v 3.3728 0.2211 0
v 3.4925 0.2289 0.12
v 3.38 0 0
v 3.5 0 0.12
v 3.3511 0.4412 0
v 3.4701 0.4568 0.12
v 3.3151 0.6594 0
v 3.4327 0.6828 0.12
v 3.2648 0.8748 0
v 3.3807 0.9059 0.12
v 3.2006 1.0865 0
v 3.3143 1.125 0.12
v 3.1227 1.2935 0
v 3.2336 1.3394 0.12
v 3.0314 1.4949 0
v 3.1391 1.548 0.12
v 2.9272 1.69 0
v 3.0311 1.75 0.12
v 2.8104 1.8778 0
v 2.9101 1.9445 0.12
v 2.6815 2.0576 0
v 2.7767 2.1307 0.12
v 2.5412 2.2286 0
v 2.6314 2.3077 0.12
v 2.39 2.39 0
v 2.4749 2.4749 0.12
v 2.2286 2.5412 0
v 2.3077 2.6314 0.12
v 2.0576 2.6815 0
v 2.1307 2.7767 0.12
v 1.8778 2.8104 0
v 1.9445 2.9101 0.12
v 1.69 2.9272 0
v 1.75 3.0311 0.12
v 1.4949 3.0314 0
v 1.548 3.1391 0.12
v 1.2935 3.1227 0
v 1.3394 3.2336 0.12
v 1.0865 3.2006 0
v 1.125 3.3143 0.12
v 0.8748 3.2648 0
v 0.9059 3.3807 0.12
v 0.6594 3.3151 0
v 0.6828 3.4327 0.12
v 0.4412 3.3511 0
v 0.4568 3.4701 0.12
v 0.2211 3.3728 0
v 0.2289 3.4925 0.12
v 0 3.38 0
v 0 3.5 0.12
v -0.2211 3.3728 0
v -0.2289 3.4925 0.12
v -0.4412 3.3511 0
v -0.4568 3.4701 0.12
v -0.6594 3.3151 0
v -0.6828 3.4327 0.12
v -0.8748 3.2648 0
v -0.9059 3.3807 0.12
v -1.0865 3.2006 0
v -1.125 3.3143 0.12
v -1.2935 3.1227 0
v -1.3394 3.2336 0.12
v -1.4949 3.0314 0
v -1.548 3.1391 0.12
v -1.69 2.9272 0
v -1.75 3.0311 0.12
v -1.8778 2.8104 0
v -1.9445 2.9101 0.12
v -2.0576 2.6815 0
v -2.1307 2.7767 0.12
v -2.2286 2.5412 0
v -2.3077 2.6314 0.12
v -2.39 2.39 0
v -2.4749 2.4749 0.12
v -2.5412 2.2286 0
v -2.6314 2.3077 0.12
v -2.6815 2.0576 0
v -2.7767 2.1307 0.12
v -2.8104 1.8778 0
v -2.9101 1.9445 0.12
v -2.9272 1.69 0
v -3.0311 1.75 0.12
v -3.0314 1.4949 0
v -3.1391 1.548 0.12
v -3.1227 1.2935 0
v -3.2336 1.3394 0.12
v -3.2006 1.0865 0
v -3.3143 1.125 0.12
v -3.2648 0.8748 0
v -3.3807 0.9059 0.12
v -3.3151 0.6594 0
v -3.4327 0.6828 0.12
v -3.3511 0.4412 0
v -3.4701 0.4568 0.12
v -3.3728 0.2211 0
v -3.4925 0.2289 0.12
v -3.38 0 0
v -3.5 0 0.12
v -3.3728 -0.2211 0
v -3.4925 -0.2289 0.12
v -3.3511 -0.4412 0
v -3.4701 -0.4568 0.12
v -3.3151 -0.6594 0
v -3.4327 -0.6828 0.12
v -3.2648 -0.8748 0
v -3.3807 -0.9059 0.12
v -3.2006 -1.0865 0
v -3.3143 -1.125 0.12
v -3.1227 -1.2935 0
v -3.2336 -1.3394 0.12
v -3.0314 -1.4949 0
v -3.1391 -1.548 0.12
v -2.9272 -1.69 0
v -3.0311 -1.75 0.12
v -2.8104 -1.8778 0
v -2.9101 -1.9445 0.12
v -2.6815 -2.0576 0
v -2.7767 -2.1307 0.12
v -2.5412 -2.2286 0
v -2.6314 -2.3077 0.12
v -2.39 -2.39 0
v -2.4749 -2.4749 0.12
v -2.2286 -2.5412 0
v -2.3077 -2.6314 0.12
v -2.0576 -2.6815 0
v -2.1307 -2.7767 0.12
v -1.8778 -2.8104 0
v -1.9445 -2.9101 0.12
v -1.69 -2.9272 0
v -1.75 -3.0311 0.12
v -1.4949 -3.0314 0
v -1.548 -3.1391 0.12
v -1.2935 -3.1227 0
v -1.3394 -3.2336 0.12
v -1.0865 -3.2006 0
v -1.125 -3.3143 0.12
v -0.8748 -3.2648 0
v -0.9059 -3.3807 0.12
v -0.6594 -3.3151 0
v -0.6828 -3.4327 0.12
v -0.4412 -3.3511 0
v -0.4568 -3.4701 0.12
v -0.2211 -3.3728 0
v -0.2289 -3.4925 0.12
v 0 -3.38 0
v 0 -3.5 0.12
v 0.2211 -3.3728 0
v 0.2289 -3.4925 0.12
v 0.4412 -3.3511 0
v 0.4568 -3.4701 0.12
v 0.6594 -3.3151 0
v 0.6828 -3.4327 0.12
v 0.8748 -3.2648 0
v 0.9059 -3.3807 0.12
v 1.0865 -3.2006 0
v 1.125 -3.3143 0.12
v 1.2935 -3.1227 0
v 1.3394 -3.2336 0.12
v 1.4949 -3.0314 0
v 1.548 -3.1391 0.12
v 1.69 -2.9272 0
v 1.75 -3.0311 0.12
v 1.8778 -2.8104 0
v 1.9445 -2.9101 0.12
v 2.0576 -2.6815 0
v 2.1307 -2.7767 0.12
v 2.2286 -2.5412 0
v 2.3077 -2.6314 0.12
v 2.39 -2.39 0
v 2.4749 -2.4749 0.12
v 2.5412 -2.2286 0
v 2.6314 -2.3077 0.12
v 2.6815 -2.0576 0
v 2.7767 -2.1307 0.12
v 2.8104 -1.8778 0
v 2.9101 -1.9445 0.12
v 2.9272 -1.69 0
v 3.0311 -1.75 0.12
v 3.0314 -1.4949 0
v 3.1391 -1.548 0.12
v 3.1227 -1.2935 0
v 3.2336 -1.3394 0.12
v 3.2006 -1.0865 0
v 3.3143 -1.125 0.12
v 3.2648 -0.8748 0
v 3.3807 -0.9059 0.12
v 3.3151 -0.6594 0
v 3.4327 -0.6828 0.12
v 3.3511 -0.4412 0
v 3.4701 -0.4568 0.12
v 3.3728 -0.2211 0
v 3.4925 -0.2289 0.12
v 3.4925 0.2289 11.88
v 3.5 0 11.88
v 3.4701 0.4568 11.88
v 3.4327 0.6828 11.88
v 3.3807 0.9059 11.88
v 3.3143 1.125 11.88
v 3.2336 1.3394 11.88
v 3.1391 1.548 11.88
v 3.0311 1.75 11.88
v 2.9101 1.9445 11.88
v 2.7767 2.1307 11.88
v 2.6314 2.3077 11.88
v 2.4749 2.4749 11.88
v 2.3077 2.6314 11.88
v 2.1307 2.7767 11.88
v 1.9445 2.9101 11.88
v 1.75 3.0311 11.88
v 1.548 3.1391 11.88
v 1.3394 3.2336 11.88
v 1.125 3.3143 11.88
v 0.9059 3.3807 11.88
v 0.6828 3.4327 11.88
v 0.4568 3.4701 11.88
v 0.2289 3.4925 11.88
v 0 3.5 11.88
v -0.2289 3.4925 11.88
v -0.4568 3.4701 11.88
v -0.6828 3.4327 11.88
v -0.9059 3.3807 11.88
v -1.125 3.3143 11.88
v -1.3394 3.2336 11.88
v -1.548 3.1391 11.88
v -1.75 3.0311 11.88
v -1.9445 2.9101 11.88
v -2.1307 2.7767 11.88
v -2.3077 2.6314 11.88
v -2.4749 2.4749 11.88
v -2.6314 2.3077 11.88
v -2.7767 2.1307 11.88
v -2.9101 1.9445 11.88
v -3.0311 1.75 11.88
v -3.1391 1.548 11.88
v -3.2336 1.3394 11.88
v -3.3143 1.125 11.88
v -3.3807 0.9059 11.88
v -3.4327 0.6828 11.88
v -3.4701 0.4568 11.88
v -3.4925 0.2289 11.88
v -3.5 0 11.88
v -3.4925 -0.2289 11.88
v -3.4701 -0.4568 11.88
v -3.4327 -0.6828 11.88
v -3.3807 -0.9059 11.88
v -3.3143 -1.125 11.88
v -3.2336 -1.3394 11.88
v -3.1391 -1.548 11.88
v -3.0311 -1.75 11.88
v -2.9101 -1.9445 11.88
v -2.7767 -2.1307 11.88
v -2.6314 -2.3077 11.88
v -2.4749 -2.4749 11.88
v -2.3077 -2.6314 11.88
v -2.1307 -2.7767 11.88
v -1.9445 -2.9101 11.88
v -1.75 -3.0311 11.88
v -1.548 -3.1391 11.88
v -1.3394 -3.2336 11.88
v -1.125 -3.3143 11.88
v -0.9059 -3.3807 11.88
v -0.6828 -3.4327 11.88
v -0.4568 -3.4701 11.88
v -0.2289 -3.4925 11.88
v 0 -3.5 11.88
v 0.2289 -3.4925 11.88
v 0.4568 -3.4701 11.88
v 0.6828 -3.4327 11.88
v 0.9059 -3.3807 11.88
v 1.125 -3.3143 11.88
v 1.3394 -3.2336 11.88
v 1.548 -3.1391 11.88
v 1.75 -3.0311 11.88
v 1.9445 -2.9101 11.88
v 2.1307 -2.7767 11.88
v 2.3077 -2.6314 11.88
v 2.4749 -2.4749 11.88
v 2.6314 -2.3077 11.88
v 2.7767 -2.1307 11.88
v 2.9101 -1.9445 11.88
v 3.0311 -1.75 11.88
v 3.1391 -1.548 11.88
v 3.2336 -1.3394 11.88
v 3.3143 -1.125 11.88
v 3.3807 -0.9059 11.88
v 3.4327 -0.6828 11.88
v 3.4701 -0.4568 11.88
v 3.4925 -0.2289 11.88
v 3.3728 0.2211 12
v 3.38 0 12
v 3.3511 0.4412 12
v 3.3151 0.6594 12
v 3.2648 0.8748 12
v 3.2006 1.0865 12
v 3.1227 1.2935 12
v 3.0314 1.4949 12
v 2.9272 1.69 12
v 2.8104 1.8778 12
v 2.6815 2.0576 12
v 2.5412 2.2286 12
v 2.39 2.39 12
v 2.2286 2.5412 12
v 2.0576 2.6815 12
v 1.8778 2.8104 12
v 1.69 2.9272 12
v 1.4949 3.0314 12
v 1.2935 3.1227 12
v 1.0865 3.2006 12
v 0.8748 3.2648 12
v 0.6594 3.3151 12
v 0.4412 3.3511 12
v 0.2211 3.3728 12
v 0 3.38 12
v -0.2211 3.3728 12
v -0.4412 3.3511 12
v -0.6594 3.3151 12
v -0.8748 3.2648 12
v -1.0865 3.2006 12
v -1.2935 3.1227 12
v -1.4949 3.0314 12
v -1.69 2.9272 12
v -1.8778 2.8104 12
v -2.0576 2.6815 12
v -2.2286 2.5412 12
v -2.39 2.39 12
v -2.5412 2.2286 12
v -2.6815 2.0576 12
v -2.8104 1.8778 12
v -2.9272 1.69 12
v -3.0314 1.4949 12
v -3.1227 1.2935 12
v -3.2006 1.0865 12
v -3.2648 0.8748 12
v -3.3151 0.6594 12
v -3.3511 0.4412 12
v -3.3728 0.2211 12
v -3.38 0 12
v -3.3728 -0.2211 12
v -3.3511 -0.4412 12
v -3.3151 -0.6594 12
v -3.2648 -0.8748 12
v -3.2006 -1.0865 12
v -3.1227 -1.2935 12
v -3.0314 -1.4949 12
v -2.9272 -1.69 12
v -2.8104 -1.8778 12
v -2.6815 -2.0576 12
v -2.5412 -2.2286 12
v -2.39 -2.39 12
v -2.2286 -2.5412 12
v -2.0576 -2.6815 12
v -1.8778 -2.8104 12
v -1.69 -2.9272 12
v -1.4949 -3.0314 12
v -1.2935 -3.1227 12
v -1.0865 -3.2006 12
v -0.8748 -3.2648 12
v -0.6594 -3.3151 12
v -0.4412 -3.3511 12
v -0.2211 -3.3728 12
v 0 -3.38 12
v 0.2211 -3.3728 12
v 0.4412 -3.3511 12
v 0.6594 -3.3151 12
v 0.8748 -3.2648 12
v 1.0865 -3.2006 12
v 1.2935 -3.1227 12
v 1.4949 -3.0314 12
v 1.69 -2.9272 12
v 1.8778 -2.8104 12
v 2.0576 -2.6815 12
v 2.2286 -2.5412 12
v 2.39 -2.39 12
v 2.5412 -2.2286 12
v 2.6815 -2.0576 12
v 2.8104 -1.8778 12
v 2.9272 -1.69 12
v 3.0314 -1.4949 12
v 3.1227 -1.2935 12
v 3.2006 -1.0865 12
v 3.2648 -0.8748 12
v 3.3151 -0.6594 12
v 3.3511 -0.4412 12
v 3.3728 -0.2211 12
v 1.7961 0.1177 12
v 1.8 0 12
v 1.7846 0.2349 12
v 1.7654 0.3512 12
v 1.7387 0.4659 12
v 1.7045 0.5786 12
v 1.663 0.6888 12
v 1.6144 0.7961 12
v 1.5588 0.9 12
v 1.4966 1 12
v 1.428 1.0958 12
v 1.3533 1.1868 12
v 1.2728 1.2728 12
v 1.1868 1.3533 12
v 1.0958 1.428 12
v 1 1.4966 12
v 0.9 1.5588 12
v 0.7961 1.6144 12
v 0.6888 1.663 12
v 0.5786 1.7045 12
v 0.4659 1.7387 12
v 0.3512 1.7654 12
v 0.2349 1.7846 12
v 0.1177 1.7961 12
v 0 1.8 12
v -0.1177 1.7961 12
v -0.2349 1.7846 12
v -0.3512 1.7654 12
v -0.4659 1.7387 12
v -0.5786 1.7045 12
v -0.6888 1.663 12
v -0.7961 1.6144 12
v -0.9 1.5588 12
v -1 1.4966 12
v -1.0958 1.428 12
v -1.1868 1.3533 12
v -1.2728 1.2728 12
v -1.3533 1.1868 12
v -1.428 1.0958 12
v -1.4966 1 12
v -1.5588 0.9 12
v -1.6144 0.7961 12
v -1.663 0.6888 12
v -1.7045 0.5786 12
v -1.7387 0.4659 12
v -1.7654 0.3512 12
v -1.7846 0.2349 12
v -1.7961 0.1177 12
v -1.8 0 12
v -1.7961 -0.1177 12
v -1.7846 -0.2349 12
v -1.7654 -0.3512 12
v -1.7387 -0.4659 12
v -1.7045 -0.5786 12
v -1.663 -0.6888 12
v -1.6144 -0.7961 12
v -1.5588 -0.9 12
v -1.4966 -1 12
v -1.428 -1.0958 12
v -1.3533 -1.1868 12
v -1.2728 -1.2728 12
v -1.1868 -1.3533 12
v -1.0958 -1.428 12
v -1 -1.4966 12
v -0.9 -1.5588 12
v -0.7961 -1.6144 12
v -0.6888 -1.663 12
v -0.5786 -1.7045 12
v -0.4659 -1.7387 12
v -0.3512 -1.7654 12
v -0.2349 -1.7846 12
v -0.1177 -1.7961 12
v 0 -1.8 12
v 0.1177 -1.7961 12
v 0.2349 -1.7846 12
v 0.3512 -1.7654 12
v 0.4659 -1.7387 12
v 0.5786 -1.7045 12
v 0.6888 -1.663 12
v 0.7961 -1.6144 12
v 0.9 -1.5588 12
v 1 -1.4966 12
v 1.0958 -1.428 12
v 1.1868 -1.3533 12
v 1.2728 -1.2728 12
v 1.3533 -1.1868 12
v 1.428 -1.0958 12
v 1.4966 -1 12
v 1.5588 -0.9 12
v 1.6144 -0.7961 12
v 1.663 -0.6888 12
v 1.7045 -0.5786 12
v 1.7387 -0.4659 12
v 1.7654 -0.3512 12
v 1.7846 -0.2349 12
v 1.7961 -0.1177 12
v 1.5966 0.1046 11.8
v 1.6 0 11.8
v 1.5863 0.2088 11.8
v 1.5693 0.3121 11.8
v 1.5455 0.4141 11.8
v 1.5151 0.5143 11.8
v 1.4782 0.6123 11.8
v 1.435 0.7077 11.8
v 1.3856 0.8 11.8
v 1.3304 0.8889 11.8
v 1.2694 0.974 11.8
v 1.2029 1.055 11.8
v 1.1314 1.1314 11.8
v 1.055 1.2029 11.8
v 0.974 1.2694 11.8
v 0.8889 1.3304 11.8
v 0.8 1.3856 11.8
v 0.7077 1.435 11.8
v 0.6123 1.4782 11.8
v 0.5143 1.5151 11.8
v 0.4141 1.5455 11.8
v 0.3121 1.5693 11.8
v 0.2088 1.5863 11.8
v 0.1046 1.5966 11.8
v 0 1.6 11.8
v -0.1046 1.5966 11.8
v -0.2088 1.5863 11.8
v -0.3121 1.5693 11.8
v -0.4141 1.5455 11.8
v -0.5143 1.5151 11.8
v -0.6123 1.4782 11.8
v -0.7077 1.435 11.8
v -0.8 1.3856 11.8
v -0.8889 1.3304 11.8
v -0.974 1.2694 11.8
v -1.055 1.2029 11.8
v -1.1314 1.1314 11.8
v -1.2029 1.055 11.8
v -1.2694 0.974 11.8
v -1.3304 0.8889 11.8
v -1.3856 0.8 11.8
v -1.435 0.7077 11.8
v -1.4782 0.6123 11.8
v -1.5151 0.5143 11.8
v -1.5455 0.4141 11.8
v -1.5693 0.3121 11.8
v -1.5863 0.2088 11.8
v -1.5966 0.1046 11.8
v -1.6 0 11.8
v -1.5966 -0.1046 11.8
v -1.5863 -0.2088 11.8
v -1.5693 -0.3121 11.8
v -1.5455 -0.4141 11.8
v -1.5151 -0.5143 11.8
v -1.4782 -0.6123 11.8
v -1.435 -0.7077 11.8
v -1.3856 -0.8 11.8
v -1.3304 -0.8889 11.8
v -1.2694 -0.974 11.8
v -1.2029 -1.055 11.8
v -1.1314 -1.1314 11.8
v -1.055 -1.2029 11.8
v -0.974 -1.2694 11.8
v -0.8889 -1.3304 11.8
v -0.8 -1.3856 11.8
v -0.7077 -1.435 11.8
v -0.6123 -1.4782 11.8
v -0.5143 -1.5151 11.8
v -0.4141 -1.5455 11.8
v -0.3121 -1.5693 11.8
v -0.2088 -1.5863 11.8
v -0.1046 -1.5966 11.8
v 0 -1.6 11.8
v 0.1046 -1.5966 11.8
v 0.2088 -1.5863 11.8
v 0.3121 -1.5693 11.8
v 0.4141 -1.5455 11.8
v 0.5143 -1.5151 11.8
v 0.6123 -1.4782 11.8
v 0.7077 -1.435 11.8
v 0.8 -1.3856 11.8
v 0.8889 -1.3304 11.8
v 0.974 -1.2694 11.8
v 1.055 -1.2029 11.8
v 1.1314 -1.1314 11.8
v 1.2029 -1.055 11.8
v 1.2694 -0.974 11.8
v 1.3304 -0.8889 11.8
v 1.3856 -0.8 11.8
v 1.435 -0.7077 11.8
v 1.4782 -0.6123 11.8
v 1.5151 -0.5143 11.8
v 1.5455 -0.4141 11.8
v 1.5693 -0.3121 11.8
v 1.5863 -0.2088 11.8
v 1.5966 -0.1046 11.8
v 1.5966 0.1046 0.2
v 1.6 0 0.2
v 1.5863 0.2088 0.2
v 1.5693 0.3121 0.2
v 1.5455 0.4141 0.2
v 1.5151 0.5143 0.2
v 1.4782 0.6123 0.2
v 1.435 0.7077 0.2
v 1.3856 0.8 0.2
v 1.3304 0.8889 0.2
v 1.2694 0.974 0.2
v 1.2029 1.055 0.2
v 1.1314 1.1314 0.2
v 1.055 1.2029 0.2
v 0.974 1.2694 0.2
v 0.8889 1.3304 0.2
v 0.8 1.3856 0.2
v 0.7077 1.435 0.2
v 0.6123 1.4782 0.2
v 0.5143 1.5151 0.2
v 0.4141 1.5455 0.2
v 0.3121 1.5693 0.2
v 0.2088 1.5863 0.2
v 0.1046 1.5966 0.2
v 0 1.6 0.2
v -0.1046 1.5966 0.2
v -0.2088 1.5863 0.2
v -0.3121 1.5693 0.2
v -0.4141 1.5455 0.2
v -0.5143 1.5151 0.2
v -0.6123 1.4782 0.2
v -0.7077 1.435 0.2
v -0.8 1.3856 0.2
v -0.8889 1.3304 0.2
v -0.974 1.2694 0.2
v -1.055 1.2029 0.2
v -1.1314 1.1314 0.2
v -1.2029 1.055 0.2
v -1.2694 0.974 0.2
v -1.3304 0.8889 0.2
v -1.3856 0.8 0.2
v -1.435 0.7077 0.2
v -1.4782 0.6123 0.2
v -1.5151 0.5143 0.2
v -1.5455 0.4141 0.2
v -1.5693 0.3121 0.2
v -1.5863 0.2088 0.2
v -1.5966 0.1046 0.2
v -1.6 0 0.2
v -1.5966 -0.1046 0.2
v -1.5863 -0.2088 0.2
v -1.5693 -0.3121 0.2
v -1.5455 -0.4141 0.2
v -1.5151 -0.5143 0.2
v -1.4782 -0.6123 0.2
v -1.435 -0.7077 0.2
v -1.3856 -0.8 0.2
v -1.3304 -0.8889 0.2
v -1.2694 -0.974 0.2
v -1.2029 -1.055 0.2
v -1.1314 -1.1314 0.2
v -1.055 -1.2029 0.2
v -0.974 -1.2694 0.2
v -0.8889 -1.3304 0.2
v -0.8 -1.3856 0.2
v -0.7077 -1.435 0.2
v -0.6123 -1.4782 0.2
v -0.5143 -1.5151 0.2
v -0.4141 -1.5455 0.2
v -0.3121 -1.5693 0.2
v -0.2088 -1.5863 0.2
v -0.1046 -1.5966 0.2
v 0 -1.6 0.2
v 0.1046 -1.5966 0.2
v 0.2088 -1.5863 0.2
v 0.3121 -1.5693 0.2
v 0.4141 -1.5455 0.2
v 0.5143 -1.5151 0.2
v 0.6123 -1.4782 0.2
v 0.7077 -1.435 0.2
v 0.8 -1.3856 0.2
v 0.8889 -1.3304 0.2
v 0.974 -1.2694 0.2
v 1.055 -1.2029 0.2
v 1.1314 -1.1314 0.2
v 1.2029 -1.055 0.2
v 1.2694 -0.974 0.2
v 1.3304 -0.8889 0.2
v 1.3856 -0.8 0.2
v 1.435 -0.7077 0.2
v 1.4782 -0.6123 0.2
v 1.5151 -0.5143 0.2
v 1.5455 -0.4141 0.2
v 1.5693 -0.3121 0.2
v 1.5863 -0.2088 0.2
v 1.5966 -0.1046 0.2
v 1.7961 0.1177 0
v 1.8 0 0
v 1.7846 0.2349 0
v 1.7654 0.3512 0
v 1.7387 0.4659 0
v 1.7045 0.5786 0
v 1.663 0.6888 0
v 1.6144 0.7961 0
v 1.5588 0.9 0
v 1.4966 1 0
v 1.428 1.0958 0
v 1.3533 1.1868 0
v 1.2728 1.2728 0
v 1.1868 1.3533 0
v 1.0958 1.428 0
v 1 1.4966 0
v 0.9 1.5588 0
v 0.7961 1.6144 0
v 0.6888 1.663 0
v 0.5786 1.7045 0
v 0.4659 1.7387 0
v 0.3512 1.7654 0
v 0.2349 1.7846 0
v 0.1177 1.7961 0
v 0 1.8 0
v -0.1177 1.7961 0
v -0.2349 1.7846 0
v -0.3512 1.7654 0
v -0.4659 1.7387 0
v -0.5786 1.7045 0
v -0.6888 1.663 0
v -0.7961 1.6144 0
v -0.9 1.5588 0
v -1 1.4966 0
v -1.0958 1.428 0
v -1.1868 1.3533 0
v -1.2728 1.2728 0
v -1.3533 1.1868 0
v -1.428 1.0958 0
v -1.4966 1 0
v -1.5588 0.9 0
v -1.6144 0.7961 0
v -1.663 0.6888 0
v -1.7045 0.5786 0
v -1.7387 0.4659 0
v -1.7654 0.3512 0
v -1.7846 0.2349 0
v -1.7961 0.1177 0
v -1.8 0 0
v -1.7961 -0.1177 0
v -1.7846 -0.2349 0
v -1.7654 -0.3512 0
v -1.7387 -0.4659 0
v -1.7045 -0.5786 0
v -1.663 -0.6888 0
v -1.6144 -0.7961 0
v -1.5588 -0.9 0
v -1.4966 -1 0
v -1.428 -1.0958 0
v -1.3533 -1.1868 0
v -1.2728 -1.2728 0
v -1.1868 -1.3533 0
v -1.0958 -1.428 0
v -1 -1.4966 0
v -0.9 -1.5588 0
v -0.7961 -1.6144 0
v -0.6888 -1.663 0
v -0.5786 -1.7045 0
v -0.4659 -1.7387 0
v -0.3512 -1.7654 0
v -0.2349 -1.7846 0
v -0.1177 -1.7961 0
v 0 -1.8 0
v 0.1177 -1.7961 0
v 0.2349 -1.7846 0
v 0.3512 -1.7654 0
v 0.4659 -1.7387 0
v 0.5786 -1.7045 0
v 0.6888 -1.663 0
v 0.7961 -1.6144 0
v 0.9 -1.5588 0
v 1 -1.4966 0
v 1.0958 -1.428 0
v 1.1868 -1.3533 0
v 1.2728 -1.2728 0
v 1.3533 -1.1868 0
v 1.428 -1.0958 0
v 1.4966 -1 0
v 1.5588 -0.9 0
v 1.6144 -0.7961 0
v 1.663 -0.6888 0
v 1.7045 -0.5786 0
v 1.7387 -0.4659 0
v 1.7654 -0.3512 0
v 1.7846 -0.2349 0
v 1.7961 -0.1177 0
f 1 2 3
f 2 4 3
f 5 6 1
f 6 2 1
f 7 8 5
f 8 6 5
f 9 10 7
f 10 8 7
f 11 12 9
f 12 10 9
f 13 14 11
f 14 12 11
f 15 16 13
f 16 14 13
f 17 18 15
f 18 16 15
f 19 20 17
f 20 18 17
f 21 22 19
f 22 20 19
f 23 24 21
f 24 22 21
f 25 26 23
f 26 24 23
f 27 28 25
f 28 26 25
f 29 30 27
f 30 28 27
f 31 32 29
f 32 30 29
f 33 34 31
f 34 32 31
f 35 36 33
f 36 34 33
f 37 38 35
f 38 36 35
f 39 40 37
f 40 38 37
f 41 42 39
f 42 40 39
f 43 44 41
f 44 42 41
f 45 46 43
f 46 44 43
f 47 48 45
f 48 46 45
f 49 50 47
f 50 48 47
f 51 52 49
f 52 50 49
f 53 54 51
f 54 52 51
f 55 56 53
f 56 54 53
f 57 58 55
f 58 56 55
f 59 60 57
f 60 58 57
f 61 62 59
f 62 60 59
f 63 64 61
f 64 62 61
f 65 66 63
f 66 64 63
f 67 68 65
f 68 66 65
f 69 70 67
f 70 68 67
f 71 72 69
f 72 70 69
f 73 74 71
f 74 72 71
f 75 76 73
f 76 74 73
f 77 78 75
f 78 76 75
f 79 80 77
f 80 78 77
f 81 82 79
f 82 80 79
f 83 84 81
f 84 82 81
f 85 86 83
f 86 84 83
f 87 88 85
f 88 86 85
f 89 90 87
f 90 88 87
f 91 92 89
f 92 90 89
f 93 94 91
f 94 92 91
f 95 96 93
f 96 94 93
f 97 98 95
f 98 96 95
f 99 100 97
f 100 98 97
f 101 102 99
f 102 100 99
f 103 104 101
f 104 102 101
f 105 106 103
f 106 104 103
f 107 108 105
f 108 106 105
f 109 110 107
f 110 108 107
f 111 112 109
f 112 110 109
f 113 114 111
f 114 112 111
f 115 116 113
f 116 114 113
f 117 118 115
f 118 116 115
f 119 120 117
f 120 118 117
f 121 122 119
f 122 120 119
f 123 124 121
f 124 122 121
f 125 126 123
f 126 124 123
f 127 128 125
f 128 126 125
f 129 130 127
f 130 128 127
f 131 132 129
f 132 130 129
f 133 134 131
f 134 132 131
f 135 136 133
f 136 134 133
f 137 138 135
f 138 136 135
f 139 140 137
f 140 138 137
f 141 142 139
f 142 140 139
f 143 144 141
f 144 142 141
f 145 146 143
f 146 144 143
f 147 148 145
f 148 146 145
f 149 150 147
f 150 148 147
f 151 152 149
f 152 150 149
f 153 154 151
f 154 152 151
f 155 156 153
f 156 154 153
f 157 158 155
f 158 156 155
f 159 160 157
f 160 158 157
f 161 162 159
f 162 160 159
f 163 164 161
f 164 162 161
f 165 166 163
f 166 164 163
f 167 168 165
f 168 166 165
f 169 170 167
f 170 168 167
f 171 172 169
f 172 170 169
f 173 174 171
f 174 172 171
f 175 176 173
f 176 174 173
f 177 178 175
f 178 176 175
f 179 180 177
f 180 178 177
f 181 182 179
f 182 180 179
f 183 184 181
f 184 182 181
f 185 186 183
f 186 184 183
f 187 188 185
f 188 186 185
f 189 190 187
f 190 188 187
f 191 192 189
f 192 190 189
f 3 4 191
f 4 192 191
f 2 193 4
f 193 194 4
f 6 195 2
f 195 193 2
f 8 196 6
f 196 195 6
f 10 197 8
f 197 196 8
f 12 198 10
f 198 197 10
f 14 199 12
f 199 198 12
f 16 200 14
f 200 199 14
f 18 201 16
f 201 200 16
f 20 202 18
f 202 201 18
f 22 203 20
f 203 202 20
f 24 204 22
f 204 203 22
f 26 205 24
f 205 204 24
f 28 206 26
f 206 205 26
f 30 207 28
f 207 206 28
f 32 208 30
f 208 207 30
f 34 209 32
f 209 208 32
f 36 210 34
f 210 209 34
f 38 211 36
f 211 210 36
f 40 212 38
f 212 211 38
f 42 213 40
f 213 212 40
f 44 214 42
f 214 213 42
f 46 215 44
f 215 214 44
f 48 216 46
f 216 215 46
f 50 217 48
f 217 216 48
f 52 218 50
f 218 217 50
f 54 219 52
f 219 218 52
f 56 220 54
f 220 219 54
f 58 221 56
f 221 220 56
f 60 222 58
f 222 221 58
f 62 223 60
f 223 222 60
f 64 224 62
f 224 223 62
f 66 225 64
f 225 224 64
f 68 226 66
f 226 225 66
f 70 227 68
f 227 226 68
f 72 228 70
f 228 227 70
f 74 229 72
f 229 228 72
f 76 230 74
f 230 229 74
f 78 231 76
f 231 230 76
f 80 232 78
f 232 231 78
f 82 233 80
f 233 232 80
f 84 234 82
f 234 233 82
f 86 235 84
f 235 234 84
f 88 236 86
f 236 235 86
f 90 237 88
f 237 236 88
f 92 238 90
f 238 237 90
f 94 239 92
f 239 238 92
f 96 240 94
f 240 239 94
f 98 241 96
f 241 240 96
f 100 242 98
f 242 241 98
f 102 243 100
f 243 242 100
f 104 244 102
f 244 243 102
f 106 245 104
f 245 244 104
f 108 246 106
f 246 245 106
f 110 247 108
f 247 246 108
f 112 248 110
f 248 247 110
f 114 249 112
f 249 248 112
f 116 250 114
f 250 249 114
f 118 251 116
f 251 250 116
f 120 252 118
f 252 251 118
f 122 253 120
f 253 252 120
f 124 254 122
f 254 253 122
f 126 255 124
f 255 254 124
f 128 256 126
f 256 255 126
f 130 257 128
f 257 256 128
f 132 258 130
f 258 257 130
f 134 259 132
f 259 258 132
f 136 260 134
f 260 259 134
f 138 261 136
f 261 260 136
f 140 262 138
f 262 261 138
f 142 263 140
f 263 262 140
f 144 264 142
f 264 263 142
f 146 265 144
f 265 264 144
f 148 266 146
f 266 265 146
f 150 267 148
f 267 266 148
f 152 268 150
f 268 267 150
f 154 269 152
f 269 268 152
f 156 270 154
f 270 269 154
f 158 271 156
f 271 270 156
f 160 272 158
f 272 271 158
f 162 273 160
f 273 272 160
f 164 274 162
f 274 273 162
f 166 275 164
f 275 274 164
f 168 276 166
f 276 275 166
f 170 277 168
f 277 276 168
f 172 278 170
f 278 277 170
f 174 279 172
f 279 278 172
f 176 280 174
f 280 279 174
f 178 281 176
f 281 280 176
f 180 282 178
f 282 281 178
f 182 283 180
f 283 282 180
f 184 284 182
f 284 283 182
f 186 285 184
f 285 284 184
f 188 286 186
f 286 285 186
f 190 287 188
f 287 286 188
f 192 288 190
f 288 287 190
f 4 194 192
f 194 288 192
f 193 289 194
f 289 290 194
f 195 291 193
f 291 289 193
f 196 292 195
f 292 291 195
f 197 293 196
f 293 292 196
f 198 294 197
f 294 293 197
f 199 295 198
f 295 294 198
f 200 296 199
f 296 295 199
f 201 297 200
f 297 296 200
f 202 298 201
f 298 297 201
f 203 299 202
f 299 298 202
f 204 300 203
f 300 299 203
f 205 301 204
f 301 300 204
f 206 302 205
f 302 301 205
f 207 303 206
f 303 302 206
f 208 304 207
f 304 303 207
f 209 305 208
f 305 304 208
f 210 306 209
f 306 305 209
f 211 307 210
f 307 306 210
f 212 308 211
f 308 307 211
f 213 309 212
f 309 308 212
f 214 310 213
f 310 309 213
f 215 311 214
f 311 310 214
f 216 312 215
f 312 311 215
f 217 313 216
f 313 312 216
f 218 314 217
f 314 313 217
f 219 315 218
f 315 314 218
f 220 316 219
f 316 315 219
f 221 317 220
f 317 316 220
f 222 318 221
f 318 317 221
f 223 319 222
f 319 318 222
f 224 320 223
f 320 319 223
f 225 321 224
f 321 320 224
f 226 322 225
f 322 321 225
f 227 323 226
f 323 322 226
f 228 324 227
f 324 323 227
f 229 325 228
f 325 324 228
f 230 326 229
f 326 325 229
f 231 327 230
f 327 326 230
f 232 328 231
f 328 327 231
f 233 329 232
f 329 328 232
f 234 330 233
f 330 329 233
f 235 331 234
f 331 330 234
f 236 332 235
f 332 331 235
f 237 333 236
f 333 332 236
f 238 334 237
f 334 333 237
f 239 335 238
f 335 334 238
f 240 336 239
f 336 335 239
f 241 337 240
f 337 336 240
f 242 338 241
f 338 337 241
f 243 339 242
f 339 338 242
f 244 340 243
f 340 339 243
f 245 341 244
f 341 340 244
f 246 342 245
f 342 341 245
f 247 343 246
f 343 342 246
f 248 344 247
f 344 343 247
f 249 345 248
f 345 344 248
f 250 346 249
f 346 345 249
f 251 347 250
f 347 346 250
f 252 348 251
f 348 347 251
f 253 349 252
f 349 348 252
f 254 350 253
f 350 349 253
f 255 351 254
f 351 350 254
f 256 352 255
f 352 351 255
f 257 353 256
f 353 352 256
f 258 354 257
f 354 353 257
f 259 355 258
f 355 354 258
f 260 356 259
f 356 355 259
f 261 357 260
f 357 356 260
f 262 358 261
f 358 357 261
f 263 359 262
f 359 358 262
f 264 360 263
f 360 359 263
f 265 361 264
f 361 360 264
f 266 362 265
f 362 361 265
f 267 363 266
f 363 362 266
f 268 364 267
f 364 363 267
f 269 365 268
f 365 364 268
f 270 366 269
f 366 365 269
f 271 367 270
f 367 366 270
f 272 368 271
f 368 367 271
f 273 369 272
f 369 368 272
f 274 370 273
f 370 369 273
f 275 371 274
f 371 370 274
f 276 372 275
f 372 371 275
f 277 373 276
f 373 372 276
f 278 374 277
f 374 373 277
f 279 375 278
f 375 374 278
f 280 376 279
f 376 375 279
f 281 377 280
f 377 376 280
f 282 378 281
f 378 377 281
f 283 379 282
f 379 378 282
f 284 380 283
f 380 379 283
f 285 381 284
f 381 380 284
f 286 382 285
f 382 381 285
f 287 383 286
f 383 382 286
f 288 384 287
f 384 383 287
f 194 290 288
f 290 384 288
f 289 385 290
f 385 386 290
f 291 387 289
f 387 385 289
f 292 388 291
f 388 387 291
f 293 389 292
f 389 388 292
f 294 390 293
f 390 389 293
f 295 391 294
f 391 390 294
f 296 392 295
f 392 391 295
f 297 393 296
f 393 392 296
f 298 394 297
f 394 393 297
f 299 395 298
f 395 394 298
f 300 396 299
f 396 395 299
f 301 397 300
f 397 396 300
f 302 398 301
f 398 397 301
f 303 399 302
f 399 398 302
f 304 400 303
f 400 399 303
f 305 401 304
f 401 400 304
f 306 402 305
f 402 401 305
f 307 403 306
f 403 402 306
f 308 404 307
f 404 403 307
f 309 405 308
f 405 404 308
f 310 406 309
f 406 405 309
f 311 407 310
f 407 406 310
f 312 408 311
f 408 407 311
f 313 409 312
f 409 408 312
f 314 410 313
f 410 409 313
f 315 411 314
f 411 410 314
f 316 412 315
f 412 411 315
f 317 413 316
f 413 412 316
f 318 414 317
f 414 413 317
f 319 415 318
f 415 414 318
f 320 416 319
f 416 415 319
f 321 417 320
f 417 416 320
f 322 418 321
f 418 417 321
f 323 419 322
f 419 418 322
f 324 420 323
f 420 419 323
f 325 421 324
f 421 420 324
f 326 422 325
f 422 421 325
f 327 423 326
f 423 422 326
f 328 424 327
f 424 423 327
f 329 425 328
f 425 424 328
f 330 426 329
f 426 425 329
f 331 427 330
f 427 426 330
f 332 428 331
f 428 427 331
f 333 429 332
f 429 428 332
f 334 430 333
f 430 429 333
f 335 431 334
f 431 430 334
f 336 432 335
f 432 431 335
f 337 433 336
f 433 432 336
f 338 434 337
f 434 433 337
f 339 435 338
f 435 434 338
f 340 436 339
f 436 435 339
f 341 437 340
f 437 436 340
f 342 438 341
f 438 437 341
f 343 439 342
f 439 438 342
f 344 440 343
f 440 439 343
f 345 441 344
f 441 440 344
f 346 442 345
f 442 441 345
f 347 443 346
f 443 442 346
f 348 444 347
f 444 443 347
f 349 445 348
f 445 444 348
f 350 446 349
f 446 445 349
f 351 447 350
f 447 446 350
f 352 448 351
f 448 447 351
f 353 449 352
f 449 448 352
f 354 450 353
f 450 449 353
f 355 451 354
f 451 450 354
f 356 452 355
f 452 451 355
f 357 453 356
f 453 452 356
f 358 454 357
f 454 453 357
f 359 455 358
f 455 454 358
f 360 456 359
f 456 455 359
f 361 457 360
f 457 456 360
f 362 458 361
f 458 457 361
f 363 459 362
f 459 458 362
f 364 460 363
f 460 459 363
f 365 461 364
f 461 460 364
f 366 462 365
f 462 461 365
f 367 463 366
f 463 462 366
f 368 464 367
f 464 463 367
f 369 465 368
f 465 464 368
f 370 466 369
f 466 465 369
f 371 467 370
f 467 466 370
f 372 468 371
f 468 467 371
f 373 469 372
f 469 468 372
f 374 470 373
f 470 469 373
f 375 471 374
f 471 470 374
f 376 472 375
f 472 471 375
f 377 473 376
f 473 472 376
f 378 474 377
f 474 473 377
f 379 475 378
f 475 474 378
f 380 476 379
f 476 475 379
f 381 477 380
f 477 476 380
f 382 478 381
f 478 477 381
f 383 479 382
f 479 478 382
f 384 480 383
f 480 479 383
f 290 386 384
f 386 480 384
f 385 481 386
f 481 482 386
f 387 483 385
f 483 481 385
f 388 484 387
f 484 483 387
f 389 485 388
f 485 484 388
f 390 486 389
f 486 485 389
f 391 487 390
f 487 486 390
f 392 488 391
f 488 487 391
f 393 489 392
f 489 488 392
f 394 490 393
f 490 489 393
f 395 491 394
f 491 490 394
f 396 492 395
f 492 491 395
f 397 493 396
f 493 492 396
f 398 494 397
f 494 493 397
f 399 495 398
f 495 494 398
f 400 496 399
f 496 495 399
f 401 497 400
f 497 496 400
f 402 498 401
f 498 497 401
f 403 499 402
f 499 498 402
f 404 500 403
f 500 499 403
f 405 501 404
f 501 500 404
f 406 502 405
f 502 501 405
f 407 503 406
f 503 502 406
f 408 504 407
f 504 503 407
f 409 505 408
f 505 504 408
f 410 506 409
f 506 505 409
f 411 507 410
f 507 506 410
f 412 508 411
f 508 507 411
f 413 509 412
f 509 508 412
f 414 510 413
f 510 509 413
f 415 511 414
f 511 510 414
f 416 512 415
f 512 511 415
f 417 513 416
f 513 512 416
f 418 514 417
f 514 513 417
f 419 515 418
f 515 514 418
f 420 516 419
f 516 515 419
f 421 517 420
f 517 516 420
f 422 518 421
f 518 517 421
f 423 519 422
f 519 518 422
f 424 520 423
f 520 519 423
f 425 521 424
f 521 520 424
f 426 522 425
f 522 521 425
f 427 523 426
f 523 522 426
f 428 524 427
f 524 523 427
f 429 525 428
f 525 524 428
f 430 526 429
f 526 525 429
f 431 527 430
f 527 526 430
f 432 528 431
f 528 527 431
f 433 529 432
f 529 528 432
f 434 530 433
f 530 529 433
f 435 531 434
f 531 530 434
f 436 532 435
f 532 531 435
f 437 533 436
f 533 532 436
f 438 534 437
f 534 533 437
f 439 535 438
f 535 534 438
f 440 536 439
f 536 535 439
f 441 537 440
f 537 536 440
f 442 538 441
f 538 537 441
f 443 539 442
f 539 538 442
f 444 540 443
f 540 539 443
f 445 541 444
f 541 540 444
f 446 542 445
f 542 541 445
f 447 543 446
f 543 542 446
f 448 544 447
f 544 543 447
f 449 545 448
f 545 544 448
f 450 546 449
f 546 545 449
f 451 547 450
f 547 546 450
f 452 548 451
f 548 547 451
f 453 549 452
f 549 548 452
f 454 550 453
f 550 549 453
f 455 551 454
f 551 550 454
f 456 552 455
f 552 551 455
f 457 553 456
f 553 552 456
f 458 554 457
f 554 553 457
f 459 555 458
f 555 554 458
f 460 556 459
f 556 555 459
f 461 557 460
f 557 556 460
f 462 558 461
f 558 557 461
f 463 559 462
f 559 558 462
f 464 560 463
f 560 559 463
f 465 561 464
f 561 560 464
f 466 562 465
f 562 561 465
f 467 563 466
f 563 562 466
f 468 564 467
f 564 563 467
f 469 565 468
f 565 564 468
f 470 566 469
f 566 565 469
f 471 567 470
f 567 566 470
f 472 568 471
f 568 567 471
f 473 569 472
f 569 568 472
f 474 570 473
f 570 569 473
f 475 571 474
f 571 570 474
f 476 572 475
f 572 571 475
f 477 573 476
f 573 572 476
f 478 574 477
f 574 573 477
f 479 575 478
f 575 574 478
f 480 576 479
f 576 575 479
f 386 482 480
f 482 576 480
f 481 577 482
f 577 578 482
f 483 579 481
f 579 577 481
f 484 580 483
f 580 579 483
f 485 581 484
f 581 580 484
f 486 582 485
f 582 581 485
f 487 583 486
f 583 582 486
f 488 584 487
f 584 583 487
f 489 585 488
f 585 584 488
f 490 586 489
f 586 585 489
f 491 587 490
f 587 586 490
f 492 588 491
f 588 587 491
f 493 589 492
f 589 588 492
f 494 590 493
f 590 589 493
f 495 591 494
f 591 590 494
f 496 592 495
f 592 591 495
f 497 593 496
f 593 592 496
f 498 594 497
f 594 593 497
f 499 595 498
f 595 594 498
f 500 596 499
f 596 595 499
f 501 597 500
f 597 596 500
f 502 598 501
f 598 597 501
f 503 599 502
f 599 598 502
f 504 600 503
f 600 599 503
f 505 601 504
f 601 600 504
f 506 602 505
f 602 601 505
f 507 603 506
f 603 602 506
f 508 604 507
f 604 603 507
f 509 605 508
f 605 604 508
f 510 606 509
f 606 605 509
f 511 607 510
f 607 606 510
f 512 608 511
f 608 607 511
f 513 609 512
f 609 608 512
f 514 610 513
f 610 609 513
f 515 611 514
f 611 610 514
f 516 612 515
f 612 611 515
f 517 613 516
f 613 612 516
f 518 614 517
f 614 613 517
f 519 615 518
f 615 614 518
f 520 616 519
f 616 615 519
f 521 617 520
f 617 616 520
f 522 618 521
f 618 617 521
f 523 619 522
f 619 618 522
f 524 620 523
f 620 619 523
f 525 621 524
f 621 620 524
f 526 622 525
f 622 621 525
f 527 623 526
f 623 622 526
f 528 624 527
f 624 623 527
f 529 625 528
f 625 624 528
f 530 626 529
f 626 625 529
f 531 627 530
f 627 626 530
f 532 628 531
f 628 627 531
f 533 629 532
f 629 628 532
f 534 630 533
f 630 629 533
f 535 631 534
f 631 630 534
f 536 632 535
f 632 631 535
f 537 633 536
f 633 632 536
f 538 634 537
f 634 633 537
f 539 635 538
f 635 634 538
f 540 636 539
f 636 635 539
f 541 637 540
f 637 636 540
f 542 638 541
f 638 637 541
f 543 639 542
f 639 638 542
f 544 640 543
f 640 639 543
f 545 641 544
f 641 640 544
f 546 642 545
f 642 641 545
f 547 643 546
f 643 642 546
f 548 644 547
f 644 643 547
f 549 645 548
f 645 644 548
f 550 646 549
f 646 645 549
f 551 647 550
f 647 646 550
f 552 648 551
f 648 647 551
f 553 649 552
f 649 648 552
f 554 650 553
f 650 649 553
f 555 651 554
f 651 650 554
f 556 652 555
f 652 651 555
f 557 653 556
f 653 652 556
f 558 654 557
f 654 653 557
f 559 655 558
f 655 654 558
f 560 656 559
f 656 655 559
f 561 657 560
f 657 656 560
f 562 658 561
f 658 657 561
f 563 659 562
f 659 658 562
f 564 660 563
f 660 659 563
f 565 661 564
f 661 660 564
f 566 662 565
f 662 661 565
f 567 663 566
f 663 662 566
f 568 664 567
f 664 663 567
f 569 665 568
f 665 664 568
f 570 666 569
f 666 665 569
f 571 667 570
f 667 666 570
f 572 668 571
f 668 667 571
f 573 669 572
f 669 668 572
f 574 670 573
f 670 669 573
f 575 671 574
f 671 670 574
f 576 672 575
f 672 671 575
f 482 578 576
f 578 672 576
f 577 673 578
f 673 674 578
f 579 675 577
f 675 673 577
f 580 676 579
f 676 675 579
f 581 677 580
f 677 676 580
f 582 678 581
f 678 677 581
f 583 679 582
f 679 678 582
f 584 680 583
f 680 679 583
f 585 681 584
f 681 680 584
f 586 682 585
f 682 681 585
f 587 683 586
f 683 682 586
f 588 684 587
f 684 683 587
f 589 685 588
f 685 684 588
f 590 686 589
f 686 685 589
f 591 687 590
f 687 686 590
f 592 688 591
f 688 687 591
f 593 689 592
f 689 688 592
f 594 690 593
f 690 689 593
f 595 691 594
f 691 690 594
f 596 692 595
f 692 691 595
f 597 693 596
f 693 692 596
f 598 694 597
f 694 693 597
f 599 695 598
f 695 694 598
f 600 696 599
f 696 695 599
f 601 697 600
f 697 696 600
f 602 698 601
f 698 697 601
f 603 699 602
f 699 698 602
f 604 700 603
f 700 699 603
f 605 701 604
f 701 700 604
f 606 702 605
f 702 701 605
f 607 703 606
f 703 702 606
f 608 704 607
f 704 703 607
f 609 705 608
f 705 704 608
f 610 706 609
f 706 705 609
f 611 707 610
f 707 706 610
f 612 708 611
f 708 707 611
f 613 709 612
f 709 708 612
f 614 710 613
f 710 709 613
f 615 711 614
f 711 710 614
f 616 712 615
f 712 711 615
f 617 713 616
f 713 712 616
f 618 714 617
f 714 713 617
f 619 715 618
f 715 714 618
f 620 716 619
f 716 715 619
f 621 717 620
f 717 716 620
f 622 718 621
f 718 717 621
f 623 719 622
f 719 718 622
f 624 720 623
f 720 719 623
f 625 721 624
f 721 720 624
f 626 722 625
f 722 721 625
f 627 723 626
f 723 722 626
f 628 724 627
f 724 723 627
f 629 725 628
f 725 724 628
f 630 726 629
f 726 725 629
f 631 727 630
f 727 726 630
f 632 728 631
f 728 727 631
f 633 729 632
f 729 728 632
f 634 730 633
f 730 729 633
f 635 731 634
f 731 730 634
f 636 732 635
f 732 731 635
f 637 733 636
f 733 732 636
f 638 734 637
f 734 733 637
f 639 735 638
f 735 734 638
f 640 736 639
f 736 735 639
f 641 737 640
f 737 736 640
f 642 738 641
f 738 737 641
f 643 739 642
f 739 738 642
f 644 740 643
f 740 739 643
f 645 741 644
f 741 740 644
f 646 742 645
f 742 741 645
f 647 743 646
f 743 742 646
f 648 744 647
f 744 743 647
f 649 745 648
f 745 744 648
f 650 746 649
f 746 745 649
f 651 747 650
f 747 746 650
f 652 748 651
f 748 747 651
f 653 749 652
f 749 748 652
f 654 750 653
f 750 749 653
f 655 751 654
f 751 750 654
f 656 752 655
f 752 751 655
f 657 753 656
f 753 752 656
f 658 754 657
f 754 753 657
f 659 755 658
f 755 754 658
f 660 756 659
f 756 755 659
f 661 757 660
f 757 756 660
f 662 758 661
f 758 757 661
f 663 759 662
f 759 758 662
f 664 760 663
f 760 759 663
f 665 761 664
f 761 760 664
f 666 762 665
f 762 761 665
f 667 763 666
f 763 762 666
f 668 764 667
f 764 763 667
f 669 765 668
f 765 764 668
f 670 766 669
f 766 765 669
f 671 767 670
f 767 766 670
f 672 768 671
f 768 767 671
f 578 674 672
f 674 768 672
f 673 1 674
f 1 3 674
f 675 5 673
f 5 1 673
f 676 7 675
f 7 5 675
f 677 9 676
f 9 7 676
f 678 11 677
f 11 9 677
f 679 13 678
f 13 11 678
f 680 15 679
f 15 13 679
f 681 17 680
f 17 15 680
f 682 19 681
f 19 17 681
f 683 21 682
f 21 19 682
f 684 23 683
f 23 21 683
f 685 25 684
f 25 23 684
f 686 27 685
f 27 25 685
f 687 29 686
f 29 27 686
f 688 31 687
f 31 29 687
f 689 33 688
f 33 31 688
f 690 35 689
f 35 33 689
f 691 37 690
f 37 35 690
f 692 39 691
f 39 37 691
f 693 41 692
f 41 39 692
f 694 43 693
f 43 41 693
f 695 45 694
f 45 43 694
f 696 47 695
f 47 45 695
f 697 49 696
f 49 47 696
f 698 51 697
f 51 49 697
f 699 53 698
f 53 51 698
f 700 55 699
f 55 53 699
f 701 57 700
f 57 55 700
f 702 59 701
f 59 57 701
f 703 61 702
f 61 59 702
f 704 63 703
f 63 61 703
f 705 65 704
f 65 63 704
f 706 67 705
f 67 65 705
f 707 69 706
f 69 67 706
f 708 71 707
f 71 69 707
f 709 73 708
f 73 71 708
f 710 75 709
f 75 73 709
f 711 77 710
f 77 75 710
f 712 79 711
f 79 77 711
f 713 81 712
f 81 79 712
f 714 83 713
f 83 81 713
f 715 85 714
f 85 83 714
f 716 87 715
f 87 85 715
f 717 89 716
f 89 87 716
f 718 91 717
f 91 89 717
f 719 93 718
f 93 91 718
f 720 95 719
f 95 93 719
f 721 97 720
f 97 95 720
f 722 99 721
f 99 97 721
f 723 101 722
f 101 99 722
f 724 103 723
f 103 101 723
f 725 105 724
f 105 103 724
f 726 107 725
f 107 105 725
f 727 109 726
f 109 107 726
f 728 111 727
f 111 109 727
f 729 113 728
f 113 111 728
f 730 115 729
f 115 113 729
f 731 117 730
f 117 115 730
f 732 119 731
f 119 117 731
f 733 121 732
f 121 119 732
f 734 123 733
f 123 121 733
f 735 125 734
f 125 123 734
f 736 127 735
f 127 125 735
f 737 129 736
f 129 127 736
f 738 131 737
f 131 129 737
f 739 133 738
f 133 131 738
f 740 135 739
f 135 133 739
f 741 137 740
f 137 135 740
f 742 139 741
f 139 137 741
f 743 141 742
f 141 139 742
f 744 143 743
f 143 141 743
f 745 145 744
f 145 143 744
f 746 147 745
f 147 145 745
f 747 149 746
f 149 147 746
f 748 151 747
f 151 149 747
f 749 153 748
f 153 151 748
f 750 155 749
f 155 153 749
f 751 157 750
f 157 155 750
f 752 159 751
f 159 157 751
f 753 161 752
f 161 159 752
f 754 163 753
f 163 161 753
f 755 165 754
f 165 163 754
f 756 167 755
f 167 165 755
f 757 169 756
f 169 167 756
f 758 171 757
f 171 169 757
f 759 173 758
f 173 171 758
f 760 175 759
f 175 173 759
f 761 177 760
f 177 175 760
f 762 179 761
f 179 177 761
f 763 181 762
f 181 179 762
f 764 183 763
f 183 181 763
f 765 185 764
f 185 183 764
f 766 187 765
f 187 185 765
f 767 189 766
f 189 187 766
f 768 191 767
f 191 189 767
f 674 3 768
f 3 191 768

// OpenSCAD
// OOMP generic catalogue model; units: mm.
// Stud length is additional to body depth. Tapping depths are model assumptions.
variant = "full"; // [full, display]
family = "spacer";
connection_type = "plain";
depth_mm = 12;
stud_length_mm = 0;
tapped_depth_mm = 0;
bore_mm = 3.2;
outer_diameter_mm = 7;
across_flats_mm = 6;
thread_nominal_diameter_mm = 3;
thread_pitch_mm = 0.5;
edge_chamfer_mm = 0.12;
mouth_chamfer_mm = 0.2;
angular_segments = 96;
samples_per_pitch = 16;

// Boundary travels up the outside, then down any tapped/plain bore.
// Equal-height rings at shoulders form the annular shoulder faces.
n = angular_segments;
threaded = family == "standoff";
has_stud = connection_type == "stud_to_tapped" || connection_type == "stud_to_stud";
two_studs = connection_type == "stud_to_stud";
through = !threaded || connection_type == "tapped_to_tapped";
pitch = thread_pitch_mm;
diameter = threaded ? thread_nominal_diameter_mm : bore_mm;
minor = diameter - 5*sqrt(3)*pitch/8;
transition = mouth_chamfer_mm + (threaded ? 5*sqrt(3)*pitch/16 : 0);
tip_chamfer = mouth_chamfer_mm + 17*sqrt(3)*pitch/48;
function sorted(v) = len(v)<=1 ? v : let(p=v[0])
    concat(sorted([for(x=v) if(x<p-1e-8) x]), [p], sorted([for(x=v) if(x>p+1e-8) x]));
function reverse(v) = [for(i=[len(v)-1:-1:0]) v[i]];
function theta(i) = i*360/n;
function fract(x) = x-floor(x);
function phase_distance(i,z) = abs(fract(z/pitch-theta(i)/360+0.5)-0.5);
function thread_r(i,z) = minor/2 + min(5*sqrt(3)*pitch/16,
    max(0,(phase_distance(i,z)-0.125)*pitch*sqrt(3)));
function stud_r(i,z,tip) = min(diameter/2 - (variant=="full" ?
    min(17*sqrt(3)*pitch/48,max(0,(phase_distance(i,z)-0.0625)*pitch*sqrt(3))) : 0),
    diameter/2-tip_chamfer+abs(z-tip));
function body_r(i,z) = (threaded ? across_flats_mm/2/cos(theta(i)%60-30) : outer_diameter_mm/2)
    - max(0,edge_chamfer_mm-min(z,depth_mm-z));
function bore_r(i,z) = max(threaded ? (variant=="full" ? thread_r(i,z) : minor/2) : diameter/2,
    diameter/2+mouth_chamfer_mm-(through ? min(z,depth_mm-z) : depth_mm-z));
function stud_z(a,b,tip) = let(count=variant=="full" ? ceil(stud_length_mm/pitch*samples_per_pitch) : 1)
    sorted(concat([for(i=[0:count]) a+(b-a)*i/count], [tip==a ? tip+tip_chamfer : tip-tip_chamfer]));
body_z = sorted([0,edge_chamfer_mm,depth_mm-edge_chamfer_mm,depth_mm]);
low = through ? 0 : depth_mm-tapped_depth_mm;
count = threaded && variant=="full" ? ceil((depth_mm-low)/pitch*samples_per_pitch) : 1;
bore_z = two_studs ? [] : reverse(sorted(concat(
    [for(i=[0:count]) low+(depth_mm-low)*i/count],
    [depth_mm-mouth_chamfer_mm,depth_mm-transition],
    through ? [mouth_chamfer_mm,transition] : [])));
// Ring descriptors: [height, kind, tip]. Kind: 0 body, 1 stud, 2 bore.
rings = concat(
    has_stud ? [for(z=stud_z(-stud_length_mm,0,-stud_length_mm)) [z,1,-stud_length_mm]] : [],
    [for(z=body_z) [z,0,0]],
    two_studs ? [for(z=stud_z(depth_mm,depth_mm+stud_length_mm,depth_mm+stud_length_mm)) [z,1,depth_mm+stud_length_mm]] : [],
    [for(z=bore_z) [z,2,0]]);
function radius(i,ring) = ring[1]==0 ? body_r(i,ring[0]) :
    ring[1]==1 ? stud_r(i,ring[0],ring[2]) : bore_r(i,ring[0]);
points = concat([for(ring=rings) for(i=[0:n-1])
    [radius(i,ring)*cos(theta(i)),radius(i,ring)*sin(theta(i)),ring[0]]],
    through ? [] : [[0,0,rings[0][0]],[0,0,rings[len(rings)-1][0]]]);
center = len(rings)*n;
last = (len(rings)-1)*n;
// OpenSCAD winding is opposite to STL winding.
faces = concat(
    [for(j=[0:len(rings)-(through ? 1 : 2)]) for(i=[0:n-1]) each
        let(a=j*n+i,b=j*n+(i+1)%n,c=((j+1)%len(rings))*n+(i+1)%n,d=((j+1)%len(rings))*n+i)
        [[a,c,b],[a,d,c]]],
    through ? [] : [for(i=[0:n-1]) each let(k=(i+1)%n)
        [[center,i,k],[center+1,last+k,last+i]]]);
assert(family=="spacer" || family=="standoff");
assert(!threaded || connection_type=="tapped_to_tapped" || has_stud);
assert(depth_mm>0 && diameter>0 && pitch>0);
assert(variant=="full" || variant=="display");
assert(n>=24 && n%12==0 && samples_per_pitch>=8);
assert(mouth_chamfer_mm>0 && mouth_chamfer_mm<depth_mm/2);
assert(edge_chamfer_mm>=0 && edge_chamfer_mm<depth_mm/2);
assert(diameter+4*max(mouth_chamfer_mm,edge_chamfer_mm) < (threaded ? across_flats_mm : outer_diameter_mm));
assert(!has_stud || stud_length_mm>2*mouth_chamfer_mm);
assert(!through || !threaded || 2*transition<depth_mm);
assert(connection_type!="stud_to_tapped" || (tapped_depth_mm>transition && tapped_depth_mm<depth_mm));
color([0.86,0.85,0.81]) polyhedron(points=points,faces=faces,convexity=20);
